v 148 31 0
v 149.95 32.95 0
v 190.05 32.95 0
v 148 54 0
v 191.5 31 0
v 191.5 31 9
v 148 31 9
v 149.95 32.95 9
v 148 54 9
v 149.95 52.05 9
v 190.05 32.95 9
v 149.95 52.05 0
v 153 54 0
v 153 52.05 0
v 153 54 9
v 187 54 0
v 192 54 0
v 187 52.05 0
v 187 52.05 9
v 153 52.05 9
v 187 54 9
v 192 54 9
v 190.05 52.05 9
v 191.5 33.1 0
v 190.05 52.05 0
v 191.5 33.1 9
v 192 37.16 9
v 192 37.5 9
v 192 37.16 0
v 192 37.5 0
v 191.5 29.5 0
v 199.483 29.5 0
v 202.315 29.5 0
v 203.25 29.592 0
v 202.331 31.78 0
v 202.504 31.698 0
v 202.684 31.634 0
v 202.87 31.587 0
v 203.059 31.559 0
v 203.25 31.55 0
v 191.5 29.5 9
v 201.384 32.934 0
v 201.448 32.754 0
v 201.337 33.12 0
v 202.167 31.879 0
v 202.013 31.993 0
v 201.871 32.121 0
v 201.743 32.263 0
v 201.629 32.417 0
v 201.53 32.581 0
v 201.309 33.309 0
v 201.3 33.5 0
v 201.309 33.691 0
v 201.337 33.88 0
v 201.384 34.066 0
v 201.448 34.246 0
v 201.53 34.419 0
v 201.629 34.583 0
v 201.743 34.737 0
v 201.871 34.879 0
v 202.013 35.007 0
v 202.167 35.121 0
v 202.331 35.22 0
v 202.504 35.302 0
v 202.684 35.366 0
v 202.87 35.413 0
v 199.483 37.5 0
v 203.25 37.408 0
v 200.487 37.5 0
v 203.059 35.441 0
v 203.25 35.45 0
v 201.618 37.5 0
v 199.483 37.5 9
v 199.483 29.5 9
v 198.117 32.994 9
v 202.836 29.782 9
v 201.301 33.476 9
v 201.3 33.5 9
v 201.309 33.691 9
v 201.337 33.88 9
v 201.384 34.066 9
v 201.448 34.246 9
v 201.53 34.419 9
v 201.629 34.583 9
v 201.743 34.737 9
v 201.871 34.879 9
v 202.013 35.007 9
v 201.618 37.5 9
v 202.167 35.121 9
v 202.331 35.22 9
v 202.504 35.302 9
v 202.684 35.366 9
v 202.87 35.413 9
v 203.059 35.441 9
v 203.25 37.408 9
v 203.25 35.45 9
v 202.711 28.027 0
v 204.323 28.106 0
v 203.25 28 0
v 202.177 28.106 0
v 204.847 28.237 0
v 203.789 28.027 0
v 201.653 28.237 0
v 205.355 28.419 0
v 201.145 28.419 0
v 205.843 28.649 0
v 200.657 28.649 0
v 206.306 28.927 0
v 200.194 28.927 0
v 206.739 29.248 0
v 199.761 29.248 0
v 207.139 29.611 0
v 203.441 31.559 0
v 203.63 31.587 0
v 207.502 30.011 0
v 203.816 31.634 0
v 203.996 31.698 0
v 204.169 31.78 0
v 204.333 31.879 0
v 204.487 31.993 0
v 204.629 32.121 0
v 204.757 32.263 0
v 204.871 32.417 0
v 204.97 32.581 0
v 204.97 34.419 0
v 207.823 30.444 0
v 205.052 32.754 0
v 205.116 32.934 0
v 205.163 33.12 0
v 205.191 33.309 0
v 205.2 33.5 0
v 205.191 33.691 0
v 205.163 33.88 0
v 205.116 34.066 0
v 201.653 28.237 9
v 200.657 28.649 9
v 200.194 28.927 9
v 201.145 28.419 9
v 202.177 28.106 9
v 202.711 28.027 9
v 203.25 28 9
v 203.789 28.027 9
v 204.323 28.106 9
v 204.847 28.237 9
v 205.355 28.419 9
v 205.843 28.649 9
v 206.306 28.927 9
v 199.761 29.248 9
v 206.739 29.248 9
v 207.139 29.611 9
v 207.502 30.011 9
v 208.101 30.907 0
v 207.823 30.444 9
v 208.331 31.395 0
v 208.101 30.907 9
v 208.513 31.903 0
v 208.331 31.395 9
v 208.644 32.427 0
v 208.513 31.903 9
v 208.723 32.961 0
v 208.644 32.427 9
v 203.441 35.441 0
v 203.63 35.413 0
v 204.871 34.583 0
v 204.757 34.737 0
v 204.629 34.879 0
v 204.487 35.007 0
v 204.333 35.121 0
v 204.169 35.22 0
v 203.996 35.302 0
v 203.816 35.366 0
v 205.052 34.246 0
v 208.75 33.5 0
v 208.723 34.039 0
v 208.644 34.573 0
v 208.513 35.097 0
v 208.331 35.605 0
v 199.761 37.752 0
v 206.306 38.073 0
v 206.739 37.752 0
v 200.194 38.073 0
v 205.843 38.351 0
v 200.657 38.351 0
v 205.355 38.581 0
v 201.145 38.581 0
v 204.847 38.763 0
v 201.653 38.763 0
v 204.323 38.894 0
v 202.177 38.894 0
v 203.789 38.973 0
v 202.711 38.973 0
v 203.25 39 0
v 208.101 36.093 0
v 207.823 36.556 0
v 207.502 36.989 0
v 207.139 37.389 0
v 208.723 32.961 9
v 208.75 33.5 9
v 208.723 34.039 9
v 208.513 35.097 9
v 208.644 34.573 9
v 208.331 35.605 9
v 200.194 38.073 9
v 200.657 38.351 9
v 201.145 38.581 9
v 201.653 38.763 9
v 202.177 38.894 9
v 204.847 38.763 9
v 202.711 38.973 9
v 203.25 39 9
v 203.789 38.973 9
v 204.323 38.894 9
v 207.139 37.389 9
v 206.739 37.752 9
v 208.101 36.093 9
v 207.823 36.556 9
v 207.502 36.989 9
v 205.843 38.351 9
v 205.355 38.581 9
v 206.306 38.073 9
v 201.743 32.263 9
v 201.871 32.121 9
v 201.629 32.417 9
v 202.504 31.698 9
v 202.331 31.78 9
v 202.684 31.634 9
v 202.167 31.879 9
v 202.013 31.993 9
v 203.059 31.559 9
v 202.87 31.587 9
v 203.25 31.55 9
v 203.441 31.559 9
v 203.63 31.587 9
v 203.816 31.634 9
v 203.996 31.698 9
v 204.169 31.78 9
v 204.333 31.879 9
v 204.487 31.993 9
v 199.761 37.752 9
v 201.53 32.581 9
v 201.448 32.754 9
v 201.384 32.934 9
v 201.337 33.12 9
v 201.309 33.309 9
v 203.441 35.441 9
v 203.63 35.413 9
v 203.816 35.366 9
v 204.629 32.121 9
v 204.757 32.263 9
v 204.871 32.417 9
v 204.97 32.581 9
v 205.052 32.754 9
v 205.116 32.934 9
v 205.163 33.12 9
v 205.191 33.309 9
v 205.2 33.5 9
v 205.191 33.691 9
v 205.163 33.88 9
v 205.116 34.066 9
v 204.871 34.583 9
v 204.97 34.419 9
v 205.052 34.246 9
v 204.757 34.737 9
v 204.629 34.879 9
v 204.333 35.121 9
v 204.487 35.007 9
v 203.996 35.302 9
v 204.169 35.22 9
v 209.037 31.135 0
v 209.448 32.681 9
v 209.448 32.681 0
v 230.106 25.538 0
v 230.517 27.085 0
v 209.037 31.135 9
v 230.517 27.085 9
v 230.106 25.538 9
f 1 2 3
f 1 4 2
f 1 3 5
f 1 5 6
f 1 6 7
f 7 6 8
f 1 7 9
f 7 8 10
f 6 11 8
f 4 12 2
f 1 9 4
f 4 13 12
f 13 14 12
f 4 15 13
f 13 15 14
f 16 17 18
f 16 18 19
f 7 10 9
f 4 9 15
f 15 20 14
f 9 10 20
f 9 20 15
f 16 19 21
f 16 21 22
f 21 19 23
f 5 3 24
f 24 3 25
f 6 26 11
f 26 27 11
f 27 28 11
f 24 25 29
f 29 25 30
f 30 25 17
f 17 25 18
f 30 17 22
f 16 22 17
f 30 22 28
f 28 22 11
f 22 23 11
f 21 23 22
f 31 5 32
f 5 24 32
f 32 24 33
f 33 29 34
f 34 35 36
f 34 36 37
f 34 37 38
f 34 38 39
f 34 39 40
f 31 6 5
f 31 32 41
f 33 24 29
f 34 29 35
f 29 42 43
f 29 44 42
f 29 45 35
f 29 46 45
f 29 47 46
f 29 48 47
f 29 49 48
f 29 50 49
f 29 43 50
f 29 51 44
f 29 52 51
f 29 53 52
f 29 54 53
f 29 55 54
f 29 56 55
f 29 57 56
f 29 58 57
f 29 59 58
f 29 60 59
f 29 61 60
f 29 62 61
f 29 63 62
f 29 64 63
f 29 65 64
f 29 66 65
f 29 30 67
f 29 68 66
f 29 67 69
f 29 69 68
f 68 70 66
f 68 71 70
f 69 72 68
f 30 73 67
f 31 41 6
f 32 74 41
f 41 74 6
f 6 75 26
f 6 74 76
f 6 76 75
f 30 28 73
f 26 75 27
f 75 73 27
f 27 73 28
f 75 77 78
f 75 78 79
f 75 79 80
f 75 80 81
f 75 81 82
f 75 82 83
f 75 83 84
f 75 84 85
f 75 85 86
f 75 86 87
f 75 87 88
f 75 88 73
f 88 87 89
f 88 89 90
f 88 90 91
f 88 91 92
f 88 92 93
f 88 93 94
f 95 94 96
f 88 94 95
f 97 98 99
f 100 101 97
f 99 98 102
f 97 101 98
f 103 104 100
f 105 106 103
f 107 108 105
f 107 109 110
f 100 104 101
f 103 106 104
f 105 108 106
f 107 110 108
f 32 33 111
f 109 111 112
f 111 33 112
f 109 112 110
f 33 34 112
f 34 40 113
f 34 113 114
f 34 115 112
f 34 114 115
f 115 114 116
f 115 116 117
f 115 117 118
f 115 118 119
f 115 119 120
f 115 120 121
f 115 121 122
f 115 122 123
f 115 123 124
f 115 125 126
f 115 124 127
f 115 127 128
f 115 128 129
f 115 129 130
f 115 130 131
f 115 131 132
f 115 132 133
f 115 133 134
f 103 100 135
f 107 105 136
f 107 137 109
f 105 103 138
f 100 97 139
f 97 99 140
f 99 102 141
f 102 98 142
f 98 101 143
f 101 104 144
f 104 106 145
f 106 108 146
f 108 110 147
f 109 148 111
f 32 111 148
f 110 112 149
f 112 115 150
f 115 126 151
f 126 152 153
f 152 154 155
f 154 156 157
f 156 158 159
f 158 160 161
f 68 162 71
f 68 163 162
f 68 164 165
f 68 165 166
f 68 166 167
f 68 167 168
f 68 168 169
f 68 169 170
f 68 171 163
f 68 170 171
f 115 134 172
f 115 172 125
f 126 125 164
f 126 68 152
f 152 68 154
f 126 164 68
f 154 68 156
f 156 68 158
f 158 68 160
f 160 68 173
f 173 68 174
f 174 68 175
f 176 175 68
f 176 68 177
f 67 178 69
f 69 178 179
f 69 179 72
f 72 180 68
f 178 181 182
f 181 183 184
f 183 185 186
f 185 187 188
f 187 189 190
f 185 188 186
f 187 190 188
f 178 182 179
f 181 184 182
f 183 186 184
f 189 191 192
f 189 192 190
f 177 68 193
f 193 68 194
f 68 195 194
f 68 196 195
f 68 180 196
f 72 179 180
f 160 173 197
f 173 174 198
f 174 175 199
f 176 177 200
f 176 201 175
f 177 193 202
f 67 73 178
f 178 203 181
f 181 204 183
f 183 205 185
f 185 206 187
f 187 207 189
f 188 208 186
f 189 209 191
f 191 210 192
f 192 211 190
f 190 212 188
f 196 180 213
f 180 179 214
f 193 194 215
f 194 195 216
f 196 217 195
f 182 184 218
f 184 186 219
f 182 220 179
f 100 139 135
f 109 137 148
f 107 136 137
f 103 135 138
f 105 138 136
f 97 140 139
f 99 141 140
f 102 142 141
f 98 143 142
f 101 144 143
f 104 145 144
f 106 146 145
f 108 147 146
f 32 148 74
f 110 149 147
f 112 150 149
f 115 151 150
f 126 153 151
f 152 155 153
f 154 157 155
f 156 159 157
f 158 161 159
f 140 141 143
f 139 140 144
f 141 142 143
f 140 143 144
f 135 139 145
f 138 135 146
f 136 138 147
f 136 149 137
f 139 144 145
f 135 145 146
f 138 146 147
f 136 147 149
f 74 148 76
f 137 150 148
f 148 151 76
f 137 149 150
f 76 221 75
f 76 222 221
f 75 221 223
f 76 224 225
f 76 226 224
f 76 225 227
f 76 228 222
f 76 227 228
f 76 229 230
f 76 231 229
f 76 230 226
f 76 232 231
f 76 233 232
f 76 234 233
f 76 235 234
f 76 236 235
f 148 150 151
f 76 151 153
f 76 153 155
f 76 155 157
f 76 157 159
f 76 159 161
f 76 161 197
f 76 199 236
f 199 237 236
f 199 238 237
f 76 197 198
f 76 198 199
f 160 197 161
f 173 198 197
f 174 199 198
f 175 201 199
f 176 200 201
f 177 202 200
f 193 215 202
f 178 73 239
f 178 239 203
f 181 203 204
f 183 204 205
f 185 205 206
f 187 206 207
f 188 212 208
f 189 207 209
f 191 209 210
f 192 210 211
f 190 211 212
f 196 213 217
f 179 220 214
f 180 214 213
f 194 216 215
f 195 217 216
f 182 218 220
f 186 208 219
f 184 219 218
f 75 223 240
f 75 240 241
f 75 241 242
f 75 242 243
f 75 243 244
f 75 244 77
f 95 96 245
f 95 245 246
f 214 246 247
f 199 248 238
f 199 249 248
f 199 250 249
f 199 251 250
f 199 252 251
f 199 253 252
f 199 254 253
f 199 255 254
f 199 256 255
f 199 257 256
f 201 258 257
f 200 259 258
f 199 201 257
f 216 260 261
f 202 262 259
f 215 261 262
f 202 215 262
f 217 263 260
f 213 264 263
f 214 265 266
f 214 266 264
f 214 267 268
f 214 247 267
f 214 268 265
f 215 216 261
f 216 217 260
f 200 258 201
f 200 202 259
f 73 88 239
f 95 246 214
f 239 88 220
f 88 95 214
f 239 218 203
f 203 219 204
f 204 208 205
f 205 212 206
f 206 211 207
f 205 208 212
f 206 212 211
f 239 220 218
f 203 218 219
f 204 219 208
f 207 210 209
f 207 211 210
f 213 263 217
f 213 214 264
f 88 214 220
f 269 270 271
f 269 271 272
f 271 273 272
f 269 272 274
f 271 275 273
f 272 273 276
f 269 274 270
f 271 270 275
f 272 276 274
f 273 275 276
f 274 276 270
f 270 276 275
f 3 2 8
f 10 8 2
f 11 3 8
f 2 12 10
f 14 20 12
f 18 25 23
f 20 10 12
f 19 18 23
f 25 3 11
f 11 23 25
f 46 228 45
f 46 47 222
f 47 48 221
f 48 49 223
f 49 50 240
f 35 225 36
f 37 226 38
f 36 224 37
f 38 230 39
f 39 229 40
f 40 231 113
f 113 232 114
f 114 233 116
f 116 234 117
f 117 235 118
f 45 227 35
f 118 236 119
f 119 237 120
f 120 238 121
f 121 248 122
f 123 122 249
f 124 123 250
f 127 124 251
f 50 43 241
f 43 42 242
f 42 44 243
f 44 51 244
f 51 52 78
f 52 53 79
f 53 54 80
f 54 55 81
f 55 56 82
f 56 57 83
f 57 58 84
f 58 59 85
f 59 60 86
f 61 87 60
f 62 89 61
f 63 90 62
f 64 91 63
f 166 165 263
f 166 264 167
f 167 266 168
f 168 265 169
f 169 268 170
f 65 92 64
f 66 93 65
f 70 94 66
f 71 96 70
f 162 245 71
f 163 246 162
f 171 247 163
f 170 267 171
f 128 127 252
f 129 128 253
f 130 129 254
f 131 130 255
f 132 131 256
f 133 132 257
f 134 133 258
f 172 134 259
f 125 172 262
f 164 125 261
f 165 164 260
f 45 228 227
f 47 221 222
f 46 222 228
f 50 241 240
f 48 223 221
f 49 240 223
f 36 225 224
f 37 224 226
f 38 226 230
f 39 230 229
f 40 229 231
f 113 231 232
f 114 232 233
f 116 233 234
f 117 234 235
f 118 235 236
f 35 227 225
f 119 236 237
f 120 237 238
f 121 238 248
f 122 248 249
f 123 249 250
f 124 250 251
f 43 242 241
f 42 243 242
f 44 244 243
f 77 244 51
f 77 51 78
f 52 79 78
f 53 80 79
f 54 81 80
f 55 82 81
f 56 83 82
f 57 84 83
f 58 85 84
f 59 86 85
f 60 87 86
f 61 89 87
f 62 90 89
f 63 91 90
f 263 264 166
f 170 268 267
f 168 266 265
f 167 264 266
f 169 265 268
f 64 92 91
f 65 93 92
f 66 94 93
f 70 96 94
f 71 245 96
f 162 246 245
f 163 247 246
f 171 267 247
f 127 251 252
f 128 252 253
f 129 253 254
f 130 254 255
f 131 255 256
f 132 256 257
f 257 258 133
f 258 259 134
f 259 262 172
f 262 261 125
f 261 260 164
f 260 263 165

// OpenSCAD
// Toccata stage-0 C01b - 시험 레버 (강철 9×19×40 자리, 허브 Ø3.9, 지침) (generated by make_stage0.py; print orientation, z = build direction)
$fn = 64;
difference(){
union(){
translate([0,0,0.0000]) linear_extrude(height=9.0000) polygon([[148.0000,31.0000],[192.0000,31.0000],[192.0000,54.0000],[187.0000,54.0000],[187.0000,52.0000],[153.0000,52.0000],[153.0000,54.0000],[148.0000,54.0000]]);
translate([0,0,0.0000]) linear_extrude(height=9.0000) polygon([[191.5000,29.5000],[203.2500,29.5000],[203.2500,37.5000],[191.5000,37.5000]]);
translate([0,0,0.0000]) linear_extrude(height=9.0000) polygon([[208.7500,33.5000],[208.7235,34.0391],[208.6443,34.5730],[208.5132,35.0966],[208.3313,35.6048],[208.1006,36.0927],[207.8231,36.5556],[207.5016,36.9892],[207.1391,37.3891],[206.7392,37.7516],[206.3056,38.0731],[205.8427,38.3506],[205.3548,38.5813],[204.8466,38.7632],[204.3230,38.8943],[203.7891,38.9735],[203.2500,39.0000],[202.7109,38.9735],[202.1770,38.8943],[201.6534,38.7632],[201.1452,38.5813],[200.6573,38.3506],[200.1944,38.0731],[199.7608,37.7516],[199.3609,37.3891],[198.9984,36.9892],[198.6769,36.5556],[198.3994,36.0927],[198.1687,35.6048],[197.9868,35.0966],[197.8557,34.5730],[197.7765,34.0391],[197.7500,33.5000],[197.7765,32.9609],[197.8557,32.4270],[197.9868,31.9034],[198.1687,31.3952],[198.3994,30.9073],[198.6769,30.4444],[198.9984,30.0108],[199.3609,29.6109],[199.7608,29.2484],[200.1944,28.9269],[200.6573,28.6494],[201.1452,28.4187],[201.6534,28.2368],[202.1770,28.1057],[202.7109,28.0265],[203.2500,28.0000],[203.7891,28.0265],[204.3230,28.1057],[204.8466,28.2368],[205.3548,28.4187],[205.8427,28.6494],[206.3056,28.9269],[206.7392,29.2484],[207.1391,29.6109],[207.5016,30.0108],[207.8231,30.4444],[208.1006,30.9073],[208.3313,31.3952],[208.5132,31.9034],[208.6443,32.4270],[208.7235,32.9609]]);
translate([0,0,0.0000]) linear_extrude(height=9.0000) polygon([[209.0368,31.1351],[230.1062,25.5385],[230.5170,27.0849],[209.4476,32.6815]]);
}
translate([0,0,-1.0000]) linear_extrude(height=11.0000) polygon([[149.9500,32.9500],[190.0500,32.9500],[190.0500,52.0500],[149.9500,52.0500]]);
translate([203.2500,33.5000,-1.0000]) cylinder(h=11.0000, d=3.9000, $fn=64);
}
